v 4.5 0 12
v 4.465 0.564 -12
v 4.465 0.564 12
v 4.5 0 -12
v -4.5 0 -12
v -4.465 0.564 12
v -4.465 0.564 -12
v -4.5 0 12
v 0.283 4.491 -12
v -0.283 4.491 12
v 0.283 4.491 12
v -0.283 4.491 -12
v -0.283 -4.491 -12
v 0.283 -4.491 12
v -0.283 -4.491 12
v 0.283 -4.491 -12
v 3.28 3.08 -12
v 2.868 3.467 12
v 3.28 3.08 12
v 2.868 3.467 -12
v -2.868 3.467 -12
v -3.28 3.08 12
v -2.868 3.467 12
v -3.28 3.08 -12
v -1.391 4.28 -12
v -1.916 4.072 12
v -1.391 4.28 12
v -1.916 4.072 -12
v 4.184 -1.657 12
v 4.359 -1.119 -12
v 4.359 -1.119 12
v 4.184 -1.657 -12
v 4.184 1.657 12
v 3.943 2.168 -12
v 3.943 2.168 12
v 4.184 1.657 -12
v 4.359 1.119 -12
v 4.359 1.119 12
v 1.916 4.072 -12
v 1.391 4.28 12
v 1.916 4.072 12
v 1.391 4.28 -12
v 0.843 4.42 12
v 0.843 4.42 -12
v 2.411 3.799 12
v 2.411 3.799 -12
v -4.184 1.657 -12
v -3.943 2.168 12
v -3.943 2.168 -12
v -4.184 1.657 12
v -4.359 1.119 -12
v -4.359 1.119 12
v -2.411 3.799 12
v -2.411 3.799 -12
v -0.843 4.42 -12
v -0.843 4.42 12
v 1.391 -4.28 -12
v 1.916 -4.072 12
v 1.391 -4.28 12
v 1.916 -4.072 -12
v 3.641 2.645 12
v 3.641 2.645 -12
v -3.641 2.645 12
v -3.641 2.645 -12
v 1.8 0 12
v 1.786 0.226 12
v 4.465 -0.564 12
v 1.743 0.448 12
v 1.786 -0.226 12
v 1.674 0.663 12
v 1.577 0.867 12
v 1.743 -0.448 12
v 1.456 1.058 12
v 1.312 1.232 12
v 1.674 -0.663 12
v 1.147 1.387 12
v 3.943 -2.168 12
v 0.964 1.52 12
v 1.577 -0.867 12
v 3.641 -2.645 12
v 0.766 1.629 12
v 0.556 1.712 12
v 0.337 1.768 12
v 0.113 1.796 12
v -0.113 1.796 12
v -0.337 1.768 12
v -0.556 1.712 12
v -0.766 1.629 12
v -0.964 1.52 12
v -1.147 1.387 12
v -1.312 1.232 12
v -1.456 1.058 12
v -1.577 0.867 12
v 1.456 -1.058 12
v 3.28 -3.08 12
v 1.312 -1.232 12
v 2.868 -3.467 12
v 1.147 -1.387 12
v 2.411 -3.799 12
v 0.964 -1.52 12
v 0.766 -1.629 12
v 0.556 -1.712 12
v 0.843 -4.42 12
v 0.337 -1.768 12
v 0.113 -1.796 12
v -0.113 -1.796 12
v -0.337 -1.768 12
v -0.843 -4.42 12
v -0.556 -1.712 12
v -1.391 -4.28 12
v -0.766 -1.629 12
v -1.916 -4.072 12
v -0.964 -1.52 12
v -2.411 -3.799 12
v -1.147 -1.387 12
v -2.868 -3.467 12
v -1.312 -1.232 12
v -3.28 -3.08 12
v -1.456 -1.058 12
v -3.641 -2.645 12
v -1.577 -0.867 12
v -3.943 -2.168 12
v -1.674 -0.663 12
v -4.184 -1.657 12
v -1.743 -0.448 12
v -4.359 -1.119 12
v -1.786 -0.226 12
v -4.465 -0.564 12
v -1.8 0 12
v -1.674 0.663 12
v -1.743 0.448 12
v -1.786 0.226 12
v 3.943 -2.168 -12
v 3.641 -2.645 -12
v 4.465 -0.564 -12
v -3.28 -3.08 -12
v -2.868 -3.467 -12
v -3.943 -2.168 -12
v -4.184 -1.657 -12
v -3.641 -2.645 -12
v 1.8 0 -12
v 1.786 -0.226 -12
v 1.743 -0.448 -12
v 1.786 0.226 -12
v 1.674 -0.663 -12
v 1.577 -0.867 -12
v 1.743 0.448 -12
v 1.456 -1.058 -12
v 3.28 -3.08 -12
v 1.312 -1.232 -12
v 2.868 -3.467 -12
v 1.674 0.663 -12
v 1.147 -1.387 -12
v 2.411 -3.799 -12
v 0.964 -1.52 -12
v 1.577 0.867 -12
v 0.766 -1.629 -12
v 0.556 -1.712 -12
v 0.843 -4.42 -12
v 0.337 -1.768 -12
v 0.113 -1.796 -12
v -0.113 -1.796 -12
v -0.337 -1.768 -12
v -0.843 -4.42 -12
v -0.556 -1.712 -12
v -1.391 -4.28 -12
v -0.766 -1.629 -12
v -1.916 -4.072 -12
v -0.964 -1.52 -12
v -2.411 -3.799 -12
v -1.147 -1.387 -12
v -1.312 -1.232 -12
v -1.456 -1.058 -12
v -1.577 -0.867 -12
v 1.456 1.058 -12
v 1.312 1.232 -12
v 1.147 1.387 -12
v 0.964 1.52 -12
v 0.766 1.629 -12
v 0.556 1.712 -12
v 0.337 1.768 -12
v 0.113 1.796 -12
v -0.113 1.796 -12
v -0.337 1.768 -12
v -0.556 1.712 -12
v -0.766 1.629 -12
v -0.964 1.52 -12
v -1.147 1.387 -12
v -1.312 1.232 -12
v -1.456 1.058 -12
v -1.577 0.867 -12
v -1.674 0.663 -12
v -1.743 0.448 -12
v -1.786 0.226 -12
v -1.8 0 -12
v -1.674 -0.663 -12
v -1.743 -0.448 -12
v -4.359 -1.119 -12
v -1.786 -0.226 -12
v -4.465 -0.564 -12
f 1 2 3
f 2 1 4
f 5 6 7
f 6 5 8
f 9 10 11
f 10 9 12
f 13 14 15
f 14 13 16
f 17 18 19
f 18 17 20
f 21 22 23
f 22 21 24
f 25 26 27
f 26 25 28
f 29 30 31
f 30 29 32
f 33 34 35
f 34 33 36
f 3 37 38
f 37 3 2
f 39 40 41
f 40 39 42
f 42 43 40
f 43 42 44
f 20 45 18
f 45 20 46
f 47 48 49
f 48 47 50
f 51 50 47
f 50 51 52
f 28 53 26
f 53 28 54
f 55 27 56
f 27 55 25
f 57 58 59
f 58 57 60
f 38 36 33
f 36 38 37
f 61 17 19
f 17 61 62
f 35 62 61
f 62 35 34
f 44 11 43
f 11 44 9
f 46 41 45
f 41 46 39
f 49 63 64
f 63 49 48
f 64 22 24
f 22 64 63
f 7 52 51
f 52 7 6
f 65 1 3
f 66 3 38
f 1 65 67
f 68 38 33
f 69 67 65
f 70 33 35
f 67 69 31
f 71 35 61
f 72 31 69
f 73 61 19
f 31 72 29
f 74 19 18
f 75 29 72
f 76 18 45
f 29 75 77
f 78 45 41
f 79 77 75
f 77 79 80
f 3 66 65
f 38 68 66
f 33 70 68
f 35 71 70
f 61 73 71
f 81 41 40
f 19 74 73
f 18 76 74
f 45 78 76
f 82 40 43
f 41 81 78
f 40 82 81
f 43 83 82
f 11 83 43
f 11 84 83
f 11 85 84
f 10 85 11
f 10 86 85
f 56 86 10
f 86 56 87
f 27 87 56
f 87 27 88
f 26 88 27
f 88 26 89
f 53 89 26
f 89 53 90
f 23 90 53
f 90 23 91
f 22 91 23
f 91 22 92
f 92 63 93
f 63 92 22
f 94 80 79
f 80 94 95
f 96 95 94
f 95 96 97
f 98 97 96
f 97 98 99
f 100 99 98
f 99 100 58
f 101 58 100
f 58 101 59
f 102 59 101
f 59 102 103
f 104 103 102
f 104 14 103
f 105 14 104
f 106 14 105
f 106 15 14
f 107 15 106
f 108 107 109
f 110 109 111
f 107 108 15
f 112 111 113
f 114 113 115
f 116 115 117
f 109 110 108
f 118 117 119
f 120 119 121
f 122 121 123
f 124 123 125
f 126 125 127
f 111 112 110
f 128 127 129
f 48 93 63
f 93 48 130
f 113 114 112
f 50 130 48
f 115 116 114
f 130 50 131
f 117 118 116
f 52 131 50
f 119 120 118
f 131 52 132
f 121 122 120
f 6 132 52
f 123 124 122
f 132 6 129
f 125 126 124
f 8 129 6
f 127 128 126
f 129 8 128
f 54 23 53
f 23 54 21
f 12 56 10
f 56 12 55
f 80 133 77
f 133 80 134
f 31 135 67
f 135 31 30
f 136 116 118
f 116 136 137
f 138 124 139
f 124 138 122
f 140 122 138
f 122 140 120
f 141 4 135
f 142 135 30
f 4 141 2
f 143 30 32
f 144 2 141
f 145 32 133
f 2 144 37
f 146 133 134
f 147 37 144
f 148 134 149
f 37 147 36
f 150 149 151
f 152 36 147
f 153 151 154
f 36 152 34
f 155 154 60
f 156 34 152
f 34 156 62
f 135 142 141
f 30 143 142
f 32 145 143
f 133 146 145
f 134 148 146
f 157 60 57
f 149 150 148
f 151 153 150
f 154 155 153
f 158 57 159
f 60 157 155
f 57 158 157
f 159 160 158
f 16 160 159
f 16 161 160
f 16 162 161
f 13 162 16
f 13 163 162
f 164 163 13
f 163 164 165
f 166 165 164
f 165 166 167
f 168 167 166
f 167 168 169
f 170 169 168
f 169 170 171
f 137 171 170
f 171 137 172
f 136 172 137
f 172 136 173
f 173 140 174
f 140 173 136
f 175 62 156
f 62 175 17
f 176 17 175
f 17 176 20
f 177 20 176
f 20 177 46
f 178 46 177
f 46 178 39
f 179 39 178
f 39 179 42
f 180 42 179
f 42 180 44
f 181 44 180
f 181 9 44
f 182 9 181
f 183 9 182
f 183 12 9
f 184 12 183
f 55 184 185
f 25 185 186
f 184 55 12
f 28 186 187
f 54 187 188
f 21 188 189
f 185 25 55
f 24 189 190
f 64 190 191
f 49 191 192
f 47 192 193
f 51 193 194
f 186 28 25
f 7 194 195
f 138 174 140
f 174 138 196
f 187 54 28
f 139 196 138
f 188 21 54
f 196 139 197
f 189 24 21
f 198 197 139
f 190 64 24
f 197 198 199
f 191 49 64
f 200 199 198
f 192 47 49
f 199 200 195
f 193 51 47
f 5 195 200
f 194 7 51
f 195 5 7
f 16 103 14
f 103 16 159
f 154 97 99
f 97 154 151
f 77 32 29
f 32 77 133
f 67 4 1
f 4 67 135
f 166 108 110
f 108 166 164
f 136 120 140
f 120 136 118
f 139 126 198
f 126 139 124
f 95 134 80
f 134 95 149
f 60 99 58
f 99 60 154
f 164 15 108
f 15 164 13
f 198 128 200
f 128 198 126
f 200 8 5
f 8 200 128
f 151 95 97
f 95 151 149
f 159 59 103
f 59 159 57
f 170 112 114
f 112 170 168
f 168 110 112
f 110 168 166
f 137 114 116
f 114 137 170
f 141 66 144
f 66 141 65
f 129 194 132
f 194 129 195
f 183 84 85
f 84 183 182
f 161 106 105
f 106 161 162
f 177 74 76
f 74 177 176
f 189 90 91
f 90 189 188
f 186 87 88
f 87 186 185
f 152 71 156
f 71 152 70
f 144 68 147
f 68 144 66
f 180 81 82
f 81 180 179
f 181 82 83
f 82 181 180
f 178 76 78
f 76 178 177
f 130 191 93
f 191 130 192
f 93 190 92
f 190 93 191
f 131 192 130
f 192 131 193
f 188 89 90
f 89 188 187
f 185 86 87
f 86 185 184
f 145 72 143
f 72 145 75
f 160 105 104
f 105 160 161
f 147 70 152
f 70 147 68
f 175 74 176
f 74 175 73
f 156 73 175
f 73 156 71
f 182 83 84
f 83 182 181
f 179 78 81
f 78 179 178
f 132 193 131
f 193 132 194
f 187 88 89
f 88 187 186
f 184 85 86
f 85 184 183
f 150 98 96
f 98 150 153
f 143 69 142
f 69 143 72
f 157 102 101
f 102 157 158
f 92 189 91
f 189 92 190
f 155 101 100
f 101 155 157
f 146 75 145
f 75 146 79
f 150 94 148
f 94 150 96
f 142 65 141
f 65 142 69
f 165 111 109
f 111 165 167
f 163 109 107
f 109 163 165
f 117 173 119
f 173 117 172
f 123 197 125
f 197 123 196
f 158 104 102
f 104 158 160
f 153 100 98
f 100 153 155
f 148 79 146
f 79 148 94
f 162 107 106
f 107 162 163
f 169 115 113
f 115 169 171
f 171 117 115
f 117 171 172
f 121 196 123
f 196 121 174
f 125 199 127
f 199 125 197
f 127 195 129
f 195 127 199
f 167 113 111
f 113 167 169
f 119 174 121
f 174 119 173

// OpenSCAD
$fn = 50;


difference() {
	union() {
		translate(v = [0, 0, -12.0000000000]) {
			cylinder(h = 24, r = 4.5000000000);
		}
	}
	union() {
		translate(v = [0, 0, -100.0000000000]) {
			cylinder(h = 200, r = 1.8000000000);
		}
	}
}
